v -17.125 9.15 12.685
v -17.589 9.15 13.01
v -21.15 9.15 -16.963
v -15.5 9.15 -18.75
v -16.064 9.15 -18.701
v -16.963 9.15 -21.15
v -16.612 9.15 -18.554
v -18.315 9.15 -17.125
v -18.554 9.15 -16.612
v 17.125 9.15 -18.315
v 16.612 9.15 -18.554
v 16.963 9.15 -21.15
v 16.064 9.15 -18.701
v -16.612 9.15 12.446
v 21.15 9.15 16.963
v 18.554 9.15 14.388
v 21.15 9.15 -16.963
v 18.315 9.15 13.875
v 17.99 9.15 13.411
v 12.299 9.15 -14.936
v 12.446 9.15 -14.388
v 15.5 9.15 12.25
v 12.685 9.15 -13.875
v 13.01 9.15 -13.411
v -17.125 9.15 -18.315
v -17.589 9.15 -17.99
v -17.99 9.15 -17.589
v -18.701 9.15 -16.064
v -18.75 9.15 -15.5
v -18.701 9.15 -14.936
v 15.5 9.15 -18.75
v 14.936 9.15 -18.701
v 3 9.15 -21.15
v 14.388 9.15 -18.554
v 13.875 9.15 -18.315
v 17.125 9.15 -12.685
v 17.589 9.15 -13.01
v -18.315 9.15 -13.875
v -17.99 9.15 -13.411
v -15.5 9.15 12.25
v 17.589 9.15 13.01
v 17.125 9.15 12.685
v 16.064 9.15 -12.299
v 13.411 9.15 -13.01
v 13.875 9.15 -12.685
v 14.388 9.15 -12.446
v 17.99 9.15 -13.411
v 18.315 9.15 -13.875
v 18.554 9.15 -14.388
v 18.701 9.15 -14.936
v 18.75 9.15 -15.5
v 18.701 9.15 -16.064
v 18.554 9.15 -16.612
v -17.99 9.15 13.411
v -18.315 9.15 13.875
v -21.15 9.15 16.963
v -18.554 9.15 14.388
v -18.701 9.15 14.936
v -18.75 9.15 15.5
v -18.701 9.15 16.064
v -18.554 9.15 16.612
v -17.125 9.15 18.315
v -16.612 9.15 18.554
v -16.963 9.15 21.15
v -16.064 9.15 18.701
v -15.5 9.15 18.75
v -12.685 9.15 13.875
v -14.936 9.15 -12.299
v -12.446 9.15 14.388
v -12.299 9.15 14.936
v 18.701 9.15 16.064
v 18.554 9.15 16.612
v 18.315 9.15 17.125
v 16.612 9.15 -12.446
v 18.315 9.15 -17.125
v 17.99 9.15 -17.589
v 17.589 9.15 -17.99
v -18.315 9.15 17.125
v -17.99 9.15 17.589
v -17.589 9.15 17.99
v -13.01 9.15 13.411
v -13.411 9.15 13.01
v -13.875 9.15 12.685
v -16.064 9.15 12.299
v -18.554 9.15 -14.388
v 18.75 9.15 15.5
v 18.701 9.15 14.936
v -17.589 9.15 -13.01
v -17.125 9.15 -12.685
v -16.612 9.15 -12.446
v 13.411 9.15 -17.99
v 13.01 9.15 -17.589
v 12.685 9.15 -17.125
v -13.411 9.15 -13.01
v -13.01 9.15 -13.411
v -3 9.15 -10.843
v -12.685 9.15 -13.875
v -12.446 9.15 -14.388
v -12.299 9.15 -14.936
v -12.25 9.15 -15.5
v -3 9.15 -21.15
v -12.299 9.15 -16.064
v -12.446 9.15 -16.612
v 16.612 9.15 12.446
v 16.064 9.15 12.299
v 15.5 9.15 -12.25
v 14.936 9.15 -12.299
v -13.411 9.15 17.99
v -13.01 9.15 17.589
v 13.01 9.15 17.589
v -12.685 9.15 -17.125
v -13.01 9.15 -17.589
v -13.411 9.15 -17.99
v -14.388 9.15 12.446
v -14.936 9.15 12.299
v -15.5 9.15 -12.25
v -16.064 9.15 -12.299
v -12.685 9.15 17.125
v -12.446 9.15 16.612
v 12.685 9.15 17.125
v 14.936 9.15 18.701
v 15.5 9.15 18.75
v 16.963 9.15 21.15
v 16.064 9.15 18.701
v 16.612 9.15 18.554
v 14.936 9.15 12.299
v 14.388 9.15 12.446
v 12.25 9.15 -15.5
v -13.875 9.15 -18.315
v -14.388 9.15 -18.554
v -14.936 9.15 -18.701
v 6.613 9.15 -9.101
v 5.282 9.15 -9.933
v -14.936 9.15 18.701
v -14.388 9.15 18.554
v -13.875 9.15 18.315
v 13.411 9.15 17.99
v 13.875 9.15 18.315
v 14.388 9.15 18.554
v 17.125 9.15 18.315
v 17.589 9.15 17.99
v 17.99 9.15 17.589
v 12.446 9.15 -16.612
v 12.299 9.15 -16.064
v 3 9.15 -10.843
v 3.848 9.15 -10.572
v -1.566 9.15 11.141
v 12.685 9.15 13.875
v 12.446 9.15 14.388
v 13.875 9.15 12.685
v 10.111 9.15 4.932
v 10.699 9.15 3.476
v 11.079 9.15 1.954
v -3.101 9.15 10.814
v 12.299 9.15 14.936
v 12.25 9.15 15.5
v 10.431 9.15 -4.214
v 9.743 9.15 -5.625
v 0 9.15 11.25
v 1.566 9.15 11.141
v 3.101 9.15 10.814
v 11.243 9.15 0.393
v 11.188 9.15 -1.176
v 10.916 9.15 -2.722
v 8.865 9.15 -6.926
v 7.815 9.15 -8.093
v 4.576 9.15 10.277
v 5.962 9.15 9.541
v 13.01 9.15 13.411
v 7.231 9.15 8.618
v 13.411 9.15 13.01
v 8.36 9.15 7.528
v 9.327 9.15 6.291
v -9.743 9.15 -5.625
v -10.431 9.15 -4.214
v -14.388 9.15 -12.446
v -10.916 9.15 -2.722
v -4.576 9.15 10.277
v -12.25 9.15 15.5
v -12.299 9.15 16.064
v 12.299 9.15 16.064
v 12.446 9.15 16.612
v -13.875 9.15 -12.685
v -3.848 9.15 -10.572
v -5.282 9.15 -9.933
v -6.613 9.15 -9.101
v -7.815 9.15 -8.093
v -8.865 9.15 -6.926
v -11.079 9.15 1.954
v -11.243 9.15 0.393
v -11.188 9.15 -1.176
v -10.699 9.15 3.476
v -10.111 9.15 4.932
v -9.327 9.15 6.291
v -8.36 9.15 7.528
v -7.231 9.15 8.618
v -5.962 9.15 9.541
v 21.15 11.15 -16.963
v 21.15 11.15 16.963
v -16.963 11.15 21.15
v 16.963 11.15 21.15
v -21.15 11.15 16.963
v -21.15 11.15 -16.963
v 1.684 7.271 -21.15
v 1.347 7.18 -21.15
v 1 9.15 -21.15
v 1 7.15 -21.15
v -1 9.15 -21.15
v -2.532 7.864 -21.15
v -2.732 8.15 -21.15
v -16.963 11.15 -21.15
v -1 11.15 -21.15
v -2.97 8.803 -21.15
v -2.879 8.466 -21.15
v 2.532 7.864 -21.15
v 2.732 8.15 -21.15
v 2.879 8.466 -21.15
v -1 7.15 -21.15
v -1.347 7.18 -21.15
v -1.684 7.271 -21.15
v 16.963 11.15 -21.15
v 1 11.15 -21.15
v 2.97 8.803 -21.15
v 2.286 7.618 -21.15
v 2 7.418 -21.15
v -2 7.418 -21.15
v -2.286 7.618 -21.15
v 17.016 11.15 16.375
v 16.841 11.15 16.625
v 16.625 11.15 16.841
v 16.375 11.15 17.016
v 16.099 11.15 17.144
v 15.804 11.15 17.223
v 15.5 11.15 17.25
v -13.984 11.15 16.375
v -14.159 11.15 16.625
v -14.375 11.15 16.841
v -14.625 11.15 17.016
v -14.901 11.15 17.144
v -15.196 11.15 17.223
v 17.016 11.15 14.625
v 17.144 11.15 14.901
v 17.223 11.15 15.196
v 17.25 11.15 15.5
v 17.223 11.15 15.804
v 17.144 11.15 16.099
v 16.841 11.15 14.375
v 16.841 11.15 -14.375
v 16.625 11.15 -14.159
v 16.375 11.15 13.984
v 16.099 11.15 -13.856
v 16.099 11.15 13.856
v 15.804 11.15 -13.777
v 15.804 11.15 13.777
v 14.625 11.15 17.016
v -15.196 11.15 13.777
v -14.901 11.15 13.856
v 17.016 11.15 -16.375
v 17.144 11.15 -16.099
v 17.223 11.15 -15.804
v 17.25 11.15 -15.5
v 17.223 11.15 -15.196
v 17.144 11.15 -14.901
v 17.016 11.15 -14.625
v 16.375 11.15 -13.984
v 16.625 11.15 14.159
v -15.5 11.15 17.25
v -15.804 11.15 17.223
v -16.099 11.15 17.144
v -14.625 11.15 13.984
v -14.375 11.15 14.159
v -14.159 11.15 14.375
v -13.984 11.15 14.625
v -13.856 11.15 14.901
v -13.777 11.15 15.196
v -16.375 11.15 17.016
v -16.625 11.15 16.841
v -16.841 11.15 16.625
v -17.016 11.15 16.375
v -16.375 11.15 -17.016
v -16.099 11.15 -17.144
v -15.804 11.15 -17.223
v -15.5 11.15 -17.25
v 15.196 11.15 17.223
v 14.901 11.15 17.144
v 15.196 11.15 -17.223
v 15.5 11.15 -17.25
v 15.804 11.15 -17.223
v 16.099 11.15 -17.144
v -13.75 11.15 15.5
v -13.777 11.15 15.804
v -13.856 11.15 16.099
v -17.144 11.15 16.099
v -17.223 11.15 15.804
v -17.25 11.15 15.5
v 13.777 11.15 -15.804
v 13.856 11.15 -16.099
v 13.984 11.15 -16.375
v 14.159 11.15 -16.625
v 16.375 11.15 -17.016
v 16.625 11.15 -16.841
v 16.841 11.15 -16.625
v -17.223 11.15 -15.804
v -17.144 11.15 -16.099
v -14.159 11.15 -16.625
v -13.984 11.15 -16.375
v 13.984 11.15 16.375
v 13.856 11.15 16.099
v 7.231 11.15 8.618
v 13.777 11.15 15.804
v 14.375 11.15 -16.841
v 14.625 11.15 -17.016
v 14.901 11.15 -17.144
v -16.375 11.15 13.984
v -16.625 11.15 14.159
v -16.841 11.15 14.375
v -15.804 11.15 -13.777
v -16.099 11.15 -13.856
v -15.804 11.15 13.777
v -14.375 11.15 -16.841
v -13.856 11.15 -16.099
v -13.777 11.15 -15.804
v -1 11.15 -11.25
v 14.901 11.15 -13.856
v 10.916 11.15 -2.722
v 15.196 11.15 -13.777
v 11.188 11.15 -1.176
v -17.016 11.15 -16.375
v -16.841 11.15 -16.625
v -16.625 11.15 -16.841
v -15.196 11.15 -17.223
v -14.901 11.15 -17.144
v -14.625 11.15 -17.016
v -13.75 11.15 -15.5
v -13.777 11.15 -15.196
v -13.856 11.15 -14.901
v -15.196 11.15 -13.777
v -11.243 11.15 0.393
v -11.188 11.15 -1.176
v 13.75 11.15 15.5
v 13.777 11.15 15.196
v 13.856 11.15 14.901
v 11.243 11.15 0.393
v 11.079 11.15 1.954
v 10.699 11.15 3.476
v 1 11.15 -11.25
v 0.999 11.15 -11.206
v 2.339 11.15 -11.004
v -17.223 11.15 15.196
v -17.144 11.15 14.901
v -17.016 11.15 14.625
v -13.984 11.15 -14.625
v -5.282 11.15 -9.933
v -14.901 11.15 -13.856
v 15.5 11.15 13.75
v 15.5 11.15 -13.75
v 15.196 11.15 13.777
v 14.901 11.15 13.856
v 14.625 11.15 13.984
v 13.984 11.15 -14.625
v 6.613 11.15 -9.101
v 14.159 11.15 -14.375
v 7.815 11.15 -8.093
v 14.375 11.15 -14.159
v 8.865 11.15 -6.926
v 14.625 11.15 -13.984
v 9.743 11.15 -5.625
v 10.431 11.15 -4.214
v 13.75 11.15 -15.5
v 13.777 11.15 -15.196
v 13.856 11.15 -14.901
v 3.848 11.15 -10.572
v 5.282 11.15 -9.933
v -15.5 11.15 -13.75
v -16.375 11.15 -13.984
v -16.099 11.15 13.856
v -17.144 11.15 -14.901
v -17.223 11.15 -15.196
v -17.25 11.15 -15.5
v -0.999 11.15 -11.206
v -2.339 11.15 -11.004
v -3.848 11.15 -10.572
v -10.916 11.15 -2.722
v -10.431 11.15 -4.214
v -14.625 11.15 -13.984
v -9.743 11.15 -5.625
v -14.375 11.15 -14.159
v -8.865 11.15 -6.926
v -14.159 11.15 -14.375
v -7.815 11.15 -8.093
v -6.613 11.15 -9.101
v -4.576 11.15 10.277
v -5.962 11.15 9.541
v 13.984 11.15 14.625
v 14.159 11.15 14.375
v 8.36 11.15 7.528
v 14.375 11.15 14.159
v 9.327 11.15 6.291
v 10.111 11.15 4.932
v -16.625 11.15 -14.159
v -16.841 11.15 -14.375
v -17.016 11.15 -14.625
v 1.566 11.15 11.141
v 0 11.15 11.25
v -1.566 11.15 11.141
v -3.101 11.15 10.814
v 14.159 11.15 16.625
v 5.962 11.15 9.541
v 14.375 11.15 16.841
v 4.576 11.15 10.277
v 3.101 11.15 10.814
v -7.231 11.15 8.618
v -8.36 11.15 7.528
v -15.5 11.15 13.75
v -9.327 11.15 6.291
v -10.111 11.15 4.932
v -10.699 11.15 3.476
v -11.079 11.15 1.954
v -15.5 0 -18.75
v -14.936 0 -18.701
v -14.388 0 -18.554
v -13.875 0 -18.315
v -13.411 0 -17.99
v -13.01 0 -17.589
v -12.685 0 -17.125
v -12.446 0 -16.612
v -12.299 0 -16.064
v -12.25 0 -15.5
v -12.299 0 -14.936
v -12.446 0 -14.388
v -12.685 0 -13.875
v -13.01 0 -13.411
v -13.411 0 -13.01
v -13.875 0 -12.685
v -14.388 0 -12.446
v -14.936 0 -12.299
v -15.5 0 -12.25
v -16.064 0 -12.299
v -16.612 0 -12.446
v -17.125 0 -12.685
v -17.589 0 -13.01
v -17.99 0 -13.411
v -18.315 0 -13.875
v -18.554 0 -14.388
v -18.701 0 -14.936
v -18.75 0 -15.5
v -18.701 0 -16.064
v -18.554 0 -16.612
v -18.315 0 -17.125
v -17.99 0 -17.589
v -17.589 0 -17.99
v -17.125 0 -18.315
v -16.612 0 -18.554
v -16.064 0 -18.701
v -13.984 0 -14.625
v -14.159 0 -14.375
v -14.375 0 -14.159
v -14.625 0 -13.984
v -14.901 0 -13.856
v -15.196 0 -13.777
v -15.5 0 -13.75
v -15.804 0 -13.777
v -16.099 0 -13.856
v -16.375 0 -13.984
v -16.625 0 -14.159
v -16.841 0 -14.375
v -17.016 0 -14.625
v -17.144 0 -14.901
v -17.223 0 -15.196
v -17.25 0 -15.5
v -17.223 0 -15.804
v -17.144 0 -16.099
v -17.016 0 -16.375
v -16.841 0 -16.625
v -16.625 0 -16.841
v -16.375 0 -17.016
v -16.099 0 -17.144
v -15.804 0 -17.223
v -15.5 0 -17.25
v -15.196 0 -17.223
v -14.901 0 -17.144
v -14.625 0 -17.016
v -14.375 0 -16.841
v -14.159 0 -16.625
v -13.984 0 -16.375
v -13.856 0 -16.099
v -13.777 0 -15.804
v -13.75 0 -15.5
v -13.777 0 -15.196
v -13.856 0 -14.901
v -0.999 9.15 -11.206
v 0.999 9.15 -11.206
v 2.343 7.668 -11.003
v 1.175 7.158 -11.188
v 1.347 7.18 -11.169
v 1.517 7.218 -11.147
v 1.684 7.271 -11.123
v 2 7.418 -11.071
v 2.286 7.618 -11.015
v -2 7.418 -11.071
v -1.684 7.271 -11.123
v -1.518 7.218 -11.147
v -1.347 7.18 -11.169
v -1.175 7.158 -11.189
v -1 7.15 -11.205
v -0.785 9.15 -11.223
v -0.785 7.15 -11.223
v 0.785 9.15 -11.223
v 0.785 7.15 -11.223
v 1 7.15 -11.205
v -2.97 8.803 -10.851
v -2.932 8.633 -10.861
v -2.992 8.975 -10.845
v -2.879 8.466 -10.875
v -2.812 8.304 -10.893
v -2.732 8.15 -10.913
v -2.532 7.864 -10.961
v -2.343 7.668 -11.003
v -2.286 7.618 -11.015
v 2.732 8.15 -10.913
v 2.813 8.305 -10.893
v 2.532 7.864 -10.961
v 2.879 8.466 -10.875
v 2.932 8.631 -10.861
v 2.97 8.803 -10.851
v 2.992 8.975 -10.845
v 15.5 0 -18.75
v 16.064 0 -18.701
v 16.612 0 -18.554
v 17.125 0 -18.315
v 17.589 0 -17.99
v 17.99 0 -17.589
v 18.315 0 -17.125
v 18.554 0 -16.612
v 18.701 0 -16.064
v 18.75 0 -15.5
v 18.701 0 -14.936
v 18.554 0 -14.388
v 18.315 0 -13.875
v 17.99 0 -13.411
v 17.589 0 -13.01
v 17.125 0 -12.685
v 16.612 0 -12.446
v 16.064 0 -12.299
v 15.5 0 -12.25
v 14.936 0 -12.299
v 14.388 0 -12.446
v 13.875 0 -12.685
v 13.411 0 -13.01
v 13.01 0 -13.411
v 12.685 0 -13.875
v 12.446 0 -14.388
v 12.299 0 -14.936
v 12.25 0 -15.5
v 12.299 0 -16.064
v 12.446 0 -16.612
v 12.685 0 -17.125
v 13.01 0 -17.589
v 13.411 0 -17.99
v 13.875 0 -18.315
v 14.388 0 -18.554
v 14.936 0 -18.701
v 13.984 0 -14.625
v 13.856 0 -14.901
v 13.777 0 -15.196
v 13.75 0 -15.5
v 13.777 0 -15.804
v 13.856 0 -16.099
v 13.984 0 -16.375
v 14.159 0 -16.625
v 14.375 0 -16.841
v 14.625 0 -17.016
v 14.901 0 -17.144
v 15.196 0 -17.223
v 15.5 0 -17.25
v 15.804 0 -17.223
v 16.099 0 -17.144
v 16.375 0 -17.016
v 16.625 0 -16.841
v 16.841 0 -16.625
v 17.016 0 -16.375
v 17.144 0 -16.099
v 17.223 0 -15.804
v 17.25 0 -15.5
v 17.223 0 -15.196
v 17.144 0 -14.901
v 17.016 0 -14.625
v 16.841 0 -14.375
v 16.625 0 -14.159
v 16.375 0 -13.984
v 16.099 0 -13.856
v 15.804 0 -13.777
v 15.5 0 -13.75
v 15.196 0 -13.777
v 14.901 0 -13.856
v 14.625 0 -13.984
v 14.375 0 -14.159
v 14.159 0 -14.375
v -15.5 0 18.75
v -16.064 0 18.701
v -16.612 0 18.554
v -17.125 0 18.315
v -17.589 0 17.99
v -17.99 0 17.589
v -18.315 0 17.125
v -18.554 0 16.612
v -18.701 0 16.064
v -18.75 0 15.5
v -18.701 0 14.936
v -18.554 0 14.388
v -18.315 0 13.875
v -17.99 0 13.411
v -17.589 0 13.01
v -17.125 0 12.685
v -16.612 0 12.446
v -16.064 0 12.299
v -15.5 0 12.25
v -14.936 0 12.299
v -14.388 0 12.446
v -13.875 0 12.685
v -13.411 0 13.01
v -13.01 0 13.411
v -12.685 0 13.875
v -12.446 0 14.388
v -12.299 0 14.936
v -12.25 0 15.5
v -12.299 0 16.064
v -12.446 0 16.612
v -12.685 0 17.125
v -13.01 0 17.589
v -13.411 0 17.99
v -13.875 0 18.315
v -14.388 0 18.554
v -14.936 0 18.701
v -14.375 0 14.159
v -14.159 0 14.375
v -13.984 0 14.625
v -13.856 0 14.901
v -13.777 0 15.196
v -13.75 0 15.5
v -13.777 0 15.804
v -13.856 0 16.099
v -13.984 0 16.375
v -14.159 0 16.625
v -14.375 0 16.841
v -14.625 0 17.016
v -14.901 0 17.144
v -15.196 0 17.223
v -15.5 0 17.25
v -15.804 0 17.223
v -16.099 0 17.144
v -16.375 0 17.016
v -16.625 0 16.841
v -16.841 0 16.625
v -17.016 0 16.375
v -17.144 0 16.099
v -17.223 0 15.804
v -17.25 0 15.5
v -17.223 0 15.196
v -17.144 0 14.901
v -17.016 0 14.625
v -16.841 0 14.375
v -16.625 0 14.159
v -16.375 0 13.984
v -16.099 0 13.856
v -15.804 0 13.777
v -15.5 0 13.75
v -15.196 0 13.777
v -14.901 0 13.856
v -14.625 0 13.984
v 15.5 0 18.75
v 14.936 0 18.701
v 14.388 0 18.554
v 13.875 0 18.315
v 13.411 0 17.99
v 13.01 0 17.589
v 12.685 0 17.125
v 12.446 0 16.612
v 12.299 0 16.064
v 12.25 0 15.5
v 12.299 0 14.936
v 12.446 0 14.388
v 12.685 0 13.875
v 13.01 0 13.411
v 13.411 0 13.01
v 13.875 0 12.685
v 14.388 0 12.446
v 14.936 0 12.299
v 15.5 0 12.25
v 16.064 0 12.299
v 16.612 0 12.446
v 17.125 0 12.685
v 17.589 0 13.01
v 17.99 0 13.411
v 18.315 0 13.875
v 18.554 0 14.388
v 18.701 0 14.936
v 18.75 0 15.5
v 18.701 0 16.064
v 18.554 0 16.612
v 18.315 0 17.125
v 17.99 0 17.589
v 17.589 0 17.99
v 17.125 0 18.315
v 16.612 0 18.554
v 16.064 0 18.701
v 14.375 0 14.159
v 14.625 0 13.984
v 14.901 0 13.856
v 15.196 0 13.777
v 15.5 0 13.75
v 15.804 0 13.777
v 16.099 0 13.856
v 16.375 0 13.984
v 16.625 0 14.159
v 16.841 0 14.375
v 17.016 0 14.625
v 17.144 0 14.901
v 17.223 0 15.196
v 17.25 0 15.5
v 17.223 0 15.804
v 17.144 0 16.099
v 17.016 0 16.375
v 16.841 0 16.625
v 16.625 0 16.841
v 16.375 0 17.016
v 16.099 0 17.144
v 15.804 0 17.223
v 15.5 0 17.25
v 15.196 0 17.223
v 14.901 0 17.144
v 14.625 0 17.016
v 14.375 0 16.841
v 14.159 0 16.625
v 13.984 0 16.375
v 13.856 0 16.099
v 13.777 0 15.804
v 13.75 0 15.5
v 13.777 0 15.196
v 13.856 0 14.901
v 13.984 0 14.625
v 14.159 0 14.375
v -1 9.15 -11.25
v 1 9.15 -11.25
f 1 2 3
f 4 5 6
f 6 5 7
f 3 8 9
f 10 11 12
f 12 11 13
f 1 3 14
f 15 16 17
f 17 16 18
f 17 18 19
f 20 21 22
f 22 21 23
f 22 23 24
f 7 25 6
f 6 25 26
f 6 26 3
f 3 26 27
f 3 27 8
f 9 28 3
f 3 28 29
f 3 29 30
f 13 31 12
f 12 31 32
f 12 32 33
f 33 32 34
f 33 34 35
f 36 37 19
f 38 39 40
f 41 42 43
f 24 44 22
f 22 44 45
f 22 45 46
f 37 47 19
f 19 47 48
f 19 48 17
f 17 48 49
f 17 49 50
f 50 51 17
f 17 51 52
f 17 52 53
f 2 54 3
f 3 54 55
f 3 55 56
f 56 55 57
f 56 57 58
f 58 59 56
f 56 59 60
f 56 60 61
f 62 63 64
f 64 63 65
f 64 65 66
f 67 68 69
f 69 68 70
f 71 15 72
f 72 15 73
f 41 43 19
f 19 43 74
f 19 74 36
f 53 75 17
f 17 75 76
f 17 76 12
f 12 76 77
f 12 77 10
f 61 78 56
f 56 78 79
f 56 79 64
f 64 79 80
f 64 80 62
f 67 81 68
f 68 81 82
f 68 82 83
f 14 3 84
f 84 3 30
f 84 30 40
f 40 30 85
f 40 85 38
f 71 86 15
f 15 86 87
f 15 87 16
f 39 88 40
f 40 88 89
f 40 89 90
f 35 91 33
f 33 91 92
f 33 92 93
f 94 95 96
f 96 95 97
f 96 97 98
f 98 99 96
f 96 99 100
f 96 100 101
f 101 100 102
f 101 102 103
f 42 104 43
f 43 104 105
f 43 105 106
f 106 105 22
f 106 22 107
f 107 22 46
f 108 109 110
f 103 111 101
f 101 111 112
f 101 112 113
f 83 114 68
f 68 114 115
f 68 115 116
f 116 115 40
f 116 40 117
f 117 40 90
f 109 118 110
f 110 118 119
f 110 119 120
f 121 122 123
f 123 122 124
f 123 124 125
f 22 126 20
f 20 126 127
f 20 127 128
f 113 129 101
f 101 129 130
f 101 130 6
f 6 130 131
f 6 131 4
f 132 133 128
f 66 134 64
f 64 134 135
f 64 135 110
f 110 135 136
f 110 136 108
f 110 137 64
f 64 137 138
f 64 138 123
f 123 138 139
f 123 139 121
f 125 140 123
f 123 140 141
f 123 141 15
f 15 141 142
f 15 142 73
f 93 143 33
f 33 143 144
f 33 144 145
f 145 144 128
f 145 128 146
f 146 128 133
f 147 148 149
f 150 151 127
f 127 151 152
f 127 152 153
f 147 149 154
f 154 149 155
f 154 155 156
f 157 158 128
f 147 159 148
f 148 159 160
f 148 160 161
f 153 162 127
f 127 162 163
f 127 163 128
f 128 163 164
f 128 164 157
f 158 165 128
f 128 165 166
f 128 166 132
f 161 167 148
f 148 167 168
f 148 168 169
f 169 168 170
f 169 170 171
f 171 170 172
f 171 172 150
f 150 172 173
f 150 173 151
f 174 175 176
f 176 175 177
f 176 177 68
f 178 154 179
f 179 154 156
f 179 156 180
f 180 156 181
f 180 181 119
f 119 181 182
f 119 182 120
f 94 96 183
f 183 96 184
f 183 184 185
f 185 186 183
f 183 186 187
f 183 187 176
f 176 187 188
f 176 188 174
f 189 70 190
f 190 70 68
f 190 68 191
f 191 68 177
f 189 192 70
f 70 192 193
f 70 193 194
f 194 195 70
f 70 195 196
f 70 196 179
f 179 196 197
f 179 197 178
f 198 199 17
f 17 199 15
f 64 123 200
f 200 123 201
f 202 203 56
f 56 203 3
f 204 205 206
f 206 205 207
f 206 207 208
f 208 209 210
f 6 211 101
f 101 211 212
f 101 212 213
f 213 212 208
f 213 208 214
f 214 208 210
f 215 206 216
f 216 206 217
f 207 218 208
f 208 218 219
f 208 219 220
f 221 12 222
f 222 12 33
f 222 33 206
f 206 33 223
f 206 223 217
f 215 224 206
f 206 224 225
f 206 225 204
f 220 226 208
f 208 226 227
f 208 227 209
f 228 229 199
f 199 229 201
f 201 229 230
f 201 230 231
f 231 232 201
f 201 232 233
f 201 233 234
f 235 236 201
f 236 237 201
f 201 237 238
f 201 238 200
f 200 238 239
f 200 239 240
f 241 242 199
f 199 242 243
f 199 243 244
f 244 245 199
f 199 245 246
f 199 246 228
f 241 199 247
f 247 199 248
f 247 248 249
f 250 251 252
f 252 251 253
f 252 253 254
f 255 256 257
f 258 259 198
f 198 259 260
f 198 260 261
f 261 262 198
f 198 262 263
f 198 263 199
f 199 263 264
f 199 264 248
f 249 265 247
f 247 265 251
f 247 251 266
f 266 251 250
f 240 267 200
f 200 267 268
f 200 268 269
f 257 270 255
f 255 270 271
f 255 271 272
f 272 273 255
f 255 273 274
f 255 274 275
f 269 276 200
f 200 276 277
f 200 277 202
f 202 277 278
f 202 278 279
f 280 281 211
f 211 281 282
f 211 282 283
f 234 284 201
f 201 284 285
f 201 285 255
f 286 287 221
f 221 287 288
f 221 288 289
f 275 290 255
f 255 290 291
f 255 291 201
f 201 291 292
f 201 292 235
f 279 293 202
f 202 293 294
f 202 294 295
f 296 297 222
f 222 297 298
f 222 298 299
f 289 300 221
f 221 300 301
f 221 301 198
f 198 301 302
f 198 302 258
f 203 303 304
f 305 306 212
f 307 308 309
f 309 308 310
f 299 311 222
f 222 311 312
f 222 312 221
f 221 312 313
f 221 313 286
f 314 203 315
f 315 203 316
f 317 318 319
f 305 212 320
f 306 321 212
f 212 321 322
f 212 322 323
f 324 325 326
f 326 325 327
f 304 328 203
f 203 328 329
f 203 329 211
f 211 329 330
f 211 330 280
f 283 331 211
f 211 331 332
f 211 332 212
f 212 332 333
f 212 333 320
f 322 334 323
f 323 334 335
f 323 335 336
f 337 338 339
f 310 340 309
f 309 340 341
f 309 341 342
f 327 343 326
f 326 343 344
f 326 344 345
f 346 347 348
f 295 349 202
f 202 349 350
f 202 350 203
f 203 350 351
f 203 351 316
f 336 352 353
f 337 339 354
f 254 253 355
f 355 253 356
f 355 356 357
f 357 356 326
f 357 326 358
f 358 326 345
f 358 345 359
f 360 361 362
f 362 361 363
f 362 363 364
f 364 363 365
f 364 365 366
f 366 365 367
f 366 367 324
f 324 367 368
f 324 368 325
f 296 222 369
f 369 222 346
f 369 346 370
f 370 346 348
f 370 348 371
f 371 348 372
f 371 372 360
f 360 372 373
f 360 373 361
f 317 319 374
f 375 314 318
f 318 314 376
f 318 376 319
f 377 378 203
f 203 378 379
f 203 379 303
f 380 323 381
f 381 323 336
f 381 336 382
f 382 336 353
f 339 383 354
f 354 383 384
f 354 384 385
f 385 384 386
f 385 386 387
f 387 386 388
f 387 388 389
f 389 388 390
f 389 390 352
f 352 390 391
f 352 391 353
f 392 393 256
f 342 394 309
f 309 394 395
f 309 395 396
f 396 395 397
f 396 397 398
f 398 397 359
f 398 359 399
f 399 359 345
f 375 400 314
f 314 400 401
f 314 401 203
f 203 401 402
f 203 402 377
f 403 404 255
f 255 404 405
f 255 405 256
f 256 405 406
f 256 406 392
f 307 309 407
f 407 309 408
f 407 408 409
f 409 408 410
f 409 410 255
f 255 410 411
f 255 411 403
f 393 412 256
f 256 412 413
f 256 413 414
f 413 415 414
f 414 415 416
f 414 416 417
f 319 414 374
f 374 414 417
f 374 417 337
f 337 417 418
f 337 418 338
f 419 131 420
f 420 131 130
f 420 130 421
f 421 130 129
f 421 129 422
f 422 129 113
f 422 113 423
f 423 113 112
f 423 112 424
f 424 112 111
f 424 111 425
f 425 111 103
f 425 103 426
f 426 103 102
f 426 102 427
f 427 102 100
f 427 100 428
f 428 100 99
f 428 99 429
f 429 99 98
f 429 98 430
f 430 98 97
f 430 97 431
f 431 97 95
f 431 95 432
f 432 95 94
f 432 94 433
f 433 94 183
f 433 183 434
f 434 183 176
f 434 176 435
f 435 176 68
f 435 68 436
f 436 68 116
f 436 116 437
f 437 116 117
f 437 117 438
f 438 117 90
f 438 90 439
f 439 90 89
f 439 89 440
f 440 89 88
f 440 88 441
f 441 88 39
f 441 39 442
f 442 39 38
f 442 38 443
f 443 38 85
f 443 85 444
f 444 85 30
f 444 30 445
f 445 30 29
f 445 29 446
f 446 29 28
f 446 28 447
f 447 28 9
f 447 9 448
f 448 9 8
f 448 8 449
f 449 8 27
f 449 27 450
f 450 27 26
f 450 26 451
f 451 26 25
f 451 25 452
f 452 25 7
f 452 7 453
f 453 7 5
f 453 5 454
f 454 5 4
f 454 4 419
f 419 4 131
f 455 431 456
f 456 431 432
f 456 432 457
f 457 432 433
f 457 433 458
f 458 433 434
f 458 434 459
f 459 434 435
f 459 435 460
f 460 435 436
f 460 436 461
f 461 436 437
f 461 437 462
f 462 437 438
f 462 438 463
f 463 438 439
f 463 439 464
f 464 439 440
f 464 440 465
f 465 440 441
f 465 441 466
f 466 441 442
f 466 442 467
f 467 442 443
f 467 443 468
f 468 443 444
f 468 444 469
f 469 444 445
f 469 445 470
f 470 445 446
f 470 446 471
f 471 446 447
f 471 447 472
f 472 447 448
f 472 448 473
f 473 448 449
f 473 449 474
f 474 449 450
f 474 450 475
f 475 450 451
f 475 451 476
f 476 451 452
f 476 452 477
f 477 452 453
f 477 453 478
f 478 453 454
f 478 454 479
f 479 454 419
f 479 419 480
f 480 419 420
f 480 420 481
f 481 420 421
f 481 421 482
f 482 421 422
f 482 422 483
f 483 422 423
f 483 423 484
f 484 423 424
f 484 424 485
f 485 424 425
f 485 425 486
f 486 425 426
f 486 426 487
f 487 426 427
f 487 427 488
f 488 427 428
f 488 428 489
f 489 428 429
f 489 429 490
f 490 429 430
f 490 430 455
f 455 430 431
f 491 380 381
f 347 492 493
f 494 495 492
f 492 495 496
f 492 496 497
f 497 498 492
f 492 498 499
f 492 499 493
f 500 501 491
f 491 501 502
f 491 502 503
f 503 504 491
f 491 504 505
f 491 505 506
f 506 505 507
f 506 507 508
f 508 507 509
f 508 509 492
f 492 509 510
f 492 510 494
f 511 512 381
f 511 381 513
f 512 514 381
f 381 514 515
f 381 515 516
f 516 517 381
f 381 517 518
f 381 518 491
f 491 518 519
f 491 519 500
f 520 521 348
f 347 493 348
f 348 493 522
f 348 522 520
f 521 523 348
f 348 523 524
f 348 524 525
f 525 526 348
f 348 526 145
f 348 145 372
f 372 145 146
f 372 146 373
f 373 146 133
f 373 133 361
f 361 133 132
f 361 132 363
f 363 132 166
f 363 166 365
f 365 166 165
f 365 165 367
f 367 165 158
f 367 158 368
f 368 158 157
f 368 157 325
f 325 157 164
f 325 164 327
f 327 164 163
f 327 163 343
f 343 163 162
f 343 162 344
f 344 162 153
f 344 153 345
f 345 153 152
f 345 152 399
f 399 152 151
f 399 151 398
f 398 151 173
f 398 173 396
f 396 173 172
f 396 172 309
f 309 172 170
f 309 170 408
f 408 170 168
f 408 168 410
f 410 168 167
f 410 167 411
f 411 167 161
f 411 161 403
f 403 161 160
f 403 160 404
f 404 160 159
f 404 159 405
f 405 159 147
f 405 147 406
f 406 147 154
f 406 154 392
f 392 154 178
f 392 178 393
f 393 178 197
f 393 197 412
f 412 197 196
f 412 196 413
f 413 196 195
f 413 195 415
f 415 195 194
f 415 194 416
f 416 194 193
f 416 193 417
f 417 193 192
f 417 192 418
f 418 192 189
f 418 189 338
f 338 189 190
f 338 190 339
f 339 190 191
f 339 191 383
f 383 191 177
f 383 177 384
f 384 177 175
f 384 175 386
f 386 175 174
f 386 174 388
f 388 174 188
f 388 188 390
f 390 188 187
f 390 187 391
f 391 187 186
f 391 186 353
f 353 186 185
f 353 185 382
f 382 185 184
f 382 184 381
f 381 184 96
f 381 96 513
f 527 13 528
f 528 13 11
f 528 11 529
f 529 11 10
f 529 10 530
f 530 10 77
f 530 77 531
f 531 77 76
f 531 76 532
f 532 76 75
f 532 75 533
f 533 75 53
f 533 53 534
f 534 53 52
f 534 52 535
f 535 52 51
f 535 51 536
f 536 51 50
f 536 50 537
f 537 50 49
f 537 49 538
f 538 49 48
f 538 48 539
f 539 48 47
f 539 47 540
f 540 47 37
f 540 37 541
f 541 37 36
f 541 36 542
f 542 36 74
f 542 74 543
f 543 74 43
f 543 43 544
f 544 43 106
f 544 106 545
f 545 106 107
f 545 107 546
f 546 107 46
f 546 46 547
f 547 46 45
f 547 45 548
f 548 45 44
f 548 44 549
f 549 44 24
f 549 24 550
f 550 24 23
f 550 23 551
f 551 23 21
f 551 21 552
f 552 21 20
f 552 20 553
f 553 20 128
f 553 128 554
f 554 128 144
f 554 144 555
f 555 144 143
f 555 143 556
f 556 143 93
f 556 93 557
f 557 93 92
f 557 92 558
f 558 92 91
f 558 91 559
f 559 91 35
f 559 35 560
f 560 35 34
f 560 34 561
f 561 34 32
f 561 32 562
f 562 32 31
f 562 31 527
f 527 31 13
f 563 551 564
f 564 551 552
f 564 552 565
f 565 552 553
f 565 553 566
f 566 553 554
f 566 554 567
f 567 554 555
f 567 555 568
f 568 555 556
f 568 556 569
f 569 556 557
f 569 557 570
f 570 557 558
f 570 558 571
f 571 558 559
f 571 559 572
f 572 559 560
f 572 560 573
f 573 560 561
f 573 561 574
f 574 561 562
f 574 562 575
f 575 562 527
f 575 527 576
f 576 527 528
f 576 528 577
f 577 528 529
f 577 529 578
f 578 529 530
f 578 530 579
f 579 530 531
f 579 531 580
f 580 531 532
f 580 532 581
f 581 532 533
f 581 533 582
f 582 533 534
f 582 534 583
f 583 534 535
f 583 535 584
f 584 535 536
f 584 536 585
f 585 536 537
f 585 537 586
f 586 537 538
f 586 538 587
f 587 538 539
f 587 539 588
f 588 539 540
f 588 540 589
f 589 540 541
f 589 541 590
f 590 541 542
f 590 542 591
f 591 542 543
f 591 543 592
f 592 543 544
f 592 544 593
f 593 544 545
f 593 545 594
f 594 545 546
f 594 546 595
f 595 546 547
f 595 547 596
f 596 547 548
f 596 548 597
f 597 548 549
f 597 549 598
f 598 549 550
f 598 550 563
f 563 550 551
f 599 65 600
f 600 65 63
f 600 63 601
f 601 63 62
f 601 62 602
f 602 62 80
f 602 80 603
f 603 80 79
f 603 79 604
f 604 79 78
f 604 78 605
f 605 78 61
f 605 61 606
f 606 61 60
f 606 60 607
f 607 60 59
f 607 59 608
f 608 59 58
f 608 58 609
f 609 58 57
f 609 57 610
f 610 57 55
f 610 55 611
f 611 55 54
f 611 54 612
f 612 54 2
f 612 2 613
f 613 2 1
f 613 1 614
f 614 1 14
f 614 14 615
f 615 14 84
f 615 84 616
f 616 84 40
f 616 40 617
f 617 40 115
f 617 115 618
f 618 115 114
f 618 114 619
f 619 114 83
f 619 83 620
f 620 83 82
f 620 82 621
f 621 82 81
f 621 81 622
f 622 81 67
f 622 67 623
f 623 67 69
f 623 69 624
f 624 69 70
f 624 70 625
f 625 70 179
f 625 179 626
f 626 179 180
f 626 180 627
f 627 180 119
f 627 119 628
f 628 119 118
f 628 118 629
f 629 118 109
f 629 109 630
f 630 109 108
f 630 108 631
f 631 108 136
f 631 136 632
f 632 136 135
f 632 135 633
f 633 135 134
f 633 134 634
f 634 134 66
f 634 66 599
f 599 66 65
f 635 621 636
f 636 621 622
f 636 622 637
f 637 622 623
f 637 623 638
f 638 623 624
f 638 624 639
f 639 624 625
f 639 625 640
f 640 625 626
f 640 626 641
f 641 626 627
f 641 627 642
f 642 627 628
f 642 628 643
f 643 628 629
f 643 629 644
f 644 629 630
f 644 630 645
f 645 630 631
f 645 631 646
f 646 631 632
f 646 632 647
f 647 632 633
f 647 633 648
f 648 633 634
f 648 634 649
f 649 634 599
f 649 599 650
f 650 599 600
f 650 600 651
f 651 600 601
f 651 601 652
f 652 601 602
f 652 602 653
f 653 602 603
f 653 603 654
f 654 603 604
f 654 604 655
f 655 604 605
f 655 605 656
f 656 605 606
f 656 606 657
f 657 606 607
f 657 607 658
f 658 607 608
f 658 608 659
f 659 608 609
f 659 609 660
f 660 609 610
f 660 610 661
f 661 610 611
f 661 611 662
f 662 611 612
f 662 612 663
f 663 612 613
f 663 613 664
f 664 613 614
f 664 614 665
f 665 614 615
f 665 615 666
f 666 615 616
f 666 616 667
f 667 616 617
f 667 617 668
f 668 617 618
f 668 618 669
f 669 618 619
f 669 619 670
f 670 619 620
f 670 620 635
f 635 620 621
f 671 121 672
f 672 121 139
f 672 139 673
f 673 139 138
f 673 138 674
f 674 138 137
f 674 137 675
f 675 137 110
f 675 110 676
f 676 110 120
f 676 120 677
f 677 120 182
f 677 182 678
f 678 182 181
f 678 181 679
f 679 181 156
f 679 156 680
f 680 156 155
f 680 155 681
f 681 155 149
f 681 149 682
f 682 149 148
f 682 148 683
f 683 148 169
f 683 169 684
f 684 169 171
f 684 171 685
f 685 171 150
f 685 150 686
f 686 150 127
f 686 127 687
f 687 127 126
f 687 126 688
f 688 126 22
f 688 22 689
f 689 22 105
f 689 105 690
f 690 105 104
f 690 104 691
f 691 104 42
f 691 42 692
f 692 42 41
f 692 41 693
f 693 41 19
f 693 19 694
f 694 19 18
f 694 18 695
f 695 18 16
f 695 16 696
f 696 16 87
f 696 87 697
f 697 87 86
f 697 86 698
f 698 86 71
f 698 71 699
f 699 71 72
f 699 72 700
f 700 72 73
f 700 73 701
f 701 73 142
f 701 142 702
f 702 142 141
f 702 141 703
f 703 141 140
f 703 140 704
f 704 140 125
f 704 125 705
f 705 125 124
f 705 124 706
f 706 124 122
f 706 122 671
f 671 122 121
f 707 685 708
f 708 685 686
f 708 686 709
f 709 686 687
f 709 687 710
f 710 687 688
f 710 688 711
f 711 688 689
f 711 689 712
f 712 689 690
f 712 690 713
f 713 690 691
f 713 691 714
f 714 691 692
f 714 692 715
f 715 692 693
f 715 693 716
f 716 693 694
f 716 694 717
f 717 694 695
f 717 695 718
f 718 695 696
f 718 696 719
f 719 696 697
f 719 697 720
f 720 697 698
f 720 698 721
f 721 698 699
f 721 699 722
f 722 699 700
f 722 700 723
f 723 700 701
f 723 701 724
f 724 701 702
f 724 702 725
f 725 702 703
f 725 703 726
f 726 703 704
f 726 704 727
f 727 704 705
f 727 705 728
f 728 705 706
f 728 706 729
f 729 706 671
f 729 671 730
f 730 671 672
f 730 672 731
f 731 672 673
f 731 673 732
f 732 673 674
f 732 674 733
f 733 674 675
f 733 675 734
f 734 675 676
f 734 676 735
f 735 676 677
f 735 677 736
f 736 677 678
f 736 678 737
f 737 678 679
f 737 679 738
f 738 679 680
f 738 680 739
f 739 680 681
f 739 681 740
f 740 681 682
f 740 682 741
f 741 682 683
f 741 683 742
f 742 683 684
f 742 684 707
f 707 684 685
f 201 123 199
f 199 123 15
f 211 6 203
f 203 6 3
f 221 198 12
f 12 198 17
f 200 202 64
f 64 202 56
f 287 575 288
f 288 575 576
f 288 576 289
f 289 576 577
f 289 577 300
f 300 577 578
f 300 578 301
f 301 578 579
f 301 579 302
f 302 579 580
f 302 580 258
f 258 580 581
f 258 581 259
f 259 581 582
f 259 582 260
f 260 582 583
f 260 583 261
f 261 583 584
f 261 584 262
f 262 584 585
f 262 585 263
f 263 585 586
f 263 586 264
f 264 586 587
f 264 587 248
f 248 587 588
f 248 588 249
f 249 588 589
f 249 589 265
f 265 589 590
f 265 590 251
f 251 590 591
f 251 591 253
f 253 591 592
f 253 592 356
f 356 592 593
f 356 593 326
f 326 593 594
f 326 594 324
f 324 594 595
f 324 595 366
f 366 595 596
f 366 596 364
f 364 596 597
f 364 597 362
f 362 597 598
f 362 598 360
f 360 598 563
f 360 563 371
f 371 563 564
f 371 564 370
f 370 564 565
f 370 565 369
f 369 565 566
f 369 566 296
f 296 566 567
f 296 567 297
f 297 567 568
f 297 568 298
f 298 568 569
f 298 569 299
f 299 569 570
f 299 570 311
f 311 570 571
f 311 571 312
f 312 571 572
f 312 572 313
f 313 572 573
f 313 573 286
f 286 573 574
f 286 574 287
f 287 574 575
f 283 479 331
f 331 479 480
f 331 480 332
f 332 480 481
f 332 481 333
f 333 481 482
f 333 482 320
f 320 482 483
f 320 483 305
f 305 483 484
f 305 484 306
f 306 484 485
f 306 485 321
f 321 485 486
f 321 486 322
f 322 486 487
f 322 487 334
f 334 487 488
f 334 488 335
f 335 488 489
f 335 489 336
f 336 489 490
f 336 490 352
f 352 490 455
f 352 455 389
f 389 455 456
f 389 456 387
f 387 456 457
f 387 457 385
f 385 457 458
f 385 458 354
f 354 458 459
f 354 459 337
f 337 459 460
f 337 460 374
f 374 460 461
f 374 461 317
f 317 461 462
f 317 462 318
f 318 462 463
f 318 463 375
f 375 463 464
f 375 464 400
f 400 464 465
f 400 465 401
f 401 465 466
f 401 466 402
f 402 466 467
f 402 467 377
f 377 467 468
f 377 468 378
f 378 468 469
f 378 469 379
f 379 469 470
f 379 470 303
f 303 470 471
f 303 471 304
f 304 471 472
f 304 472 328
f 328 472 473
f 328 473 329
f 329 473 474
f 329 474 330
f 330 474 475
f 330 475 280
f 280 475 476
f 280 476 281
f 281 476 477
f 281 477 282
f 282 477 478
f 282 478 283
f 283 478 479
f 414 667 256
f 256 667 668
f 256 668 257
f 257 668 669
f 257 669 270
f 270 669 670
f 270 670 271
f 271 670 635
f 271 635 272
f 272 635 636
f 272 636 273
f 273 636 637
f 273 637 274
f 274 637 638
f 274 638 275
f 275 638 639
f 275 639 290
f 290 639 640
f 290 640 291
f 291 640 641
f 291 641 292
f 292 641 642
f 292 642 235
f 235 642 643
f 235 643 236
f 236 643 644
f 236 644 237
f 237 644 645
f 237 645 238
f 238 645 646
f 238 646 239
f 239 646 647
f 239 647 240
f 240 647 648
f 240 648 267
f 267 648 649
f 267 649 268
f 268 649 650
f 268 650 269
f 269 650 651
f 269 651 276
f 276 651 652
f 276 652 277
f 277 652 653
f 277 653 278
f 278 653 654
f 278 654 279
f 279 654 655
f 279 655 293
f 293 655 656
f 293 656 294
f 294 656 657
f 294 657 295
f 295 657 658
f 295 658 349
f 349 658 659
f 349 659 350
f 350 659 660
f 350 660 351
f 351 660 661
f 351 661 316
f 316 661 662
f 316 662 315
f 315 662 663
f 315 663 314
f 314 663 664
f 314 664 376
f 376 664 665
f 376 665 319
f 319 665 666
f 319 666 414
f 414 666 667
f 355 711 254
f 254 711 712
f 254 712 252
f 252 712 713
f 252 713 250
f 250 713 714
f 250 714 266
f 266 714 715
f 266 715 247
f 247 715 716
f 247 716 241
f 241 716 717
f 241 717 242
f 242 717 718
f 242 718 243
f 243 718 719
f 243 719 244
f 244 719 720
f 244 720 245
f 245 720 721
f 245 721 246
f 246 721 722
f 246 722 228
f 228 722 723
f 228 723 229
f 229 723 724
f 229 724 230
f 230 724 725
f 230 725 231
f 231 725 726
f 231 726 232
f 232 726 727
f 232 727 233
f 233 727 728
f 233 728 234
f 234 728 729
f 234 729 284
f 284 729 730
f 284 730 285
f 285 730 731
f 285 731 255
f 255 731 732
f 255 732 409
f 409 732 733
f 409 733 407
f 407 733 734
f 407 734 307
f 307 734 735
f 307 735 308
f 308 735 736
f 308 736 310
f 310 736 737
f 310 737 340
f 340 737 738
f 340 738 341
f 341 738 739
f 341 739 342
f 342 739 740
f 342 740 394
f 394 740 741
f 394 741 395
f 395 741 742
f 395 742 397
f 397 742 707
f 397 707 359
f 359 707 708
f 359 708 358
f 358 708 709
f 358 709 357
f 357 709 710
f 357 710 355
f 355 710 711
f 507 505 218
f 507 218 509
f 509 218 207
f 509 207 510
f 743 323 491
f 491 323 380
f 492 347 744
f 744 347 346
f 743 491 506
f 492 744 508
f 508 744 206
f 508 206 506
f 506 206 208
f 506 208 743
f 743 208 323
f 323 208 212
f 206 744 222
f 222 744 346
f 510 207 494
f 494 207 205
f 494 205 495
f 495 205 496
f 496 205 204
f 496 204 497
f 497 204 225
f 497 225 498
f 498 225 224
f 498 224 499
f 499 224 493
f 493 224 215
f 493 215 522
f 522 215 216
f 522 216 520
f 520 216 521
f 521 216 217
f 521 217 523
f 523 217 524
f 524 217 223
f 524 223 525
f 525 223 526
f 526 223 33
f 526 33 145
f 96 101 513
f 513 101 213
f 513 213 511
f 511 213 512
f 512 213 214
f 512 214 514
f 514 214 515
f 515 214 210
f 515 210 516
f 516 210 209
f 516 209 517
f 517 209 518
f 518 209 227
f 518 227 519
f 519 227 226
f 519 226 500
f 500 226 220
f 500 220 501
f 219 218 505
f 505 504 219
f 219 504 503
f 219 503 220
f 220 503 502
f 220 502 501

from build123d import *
from build123d.topology import SkipClean

# Parameters (mm, degrees)
SKETCH1_R               = 3.25
BOSS_EXTRUDE1_DEPTH     = 11.15
SKETCH2_W               = 42.3
SKETCH2_H               = 42.3
SKETCH2_R               = 11.25
BOSS_EXTRUDE2_DEPTH     = 2
CUT_EXTRUDE1_DEPTH      = 32.921270338
SKETCH4_R               = 1.75
CUT_EXTRUDE2_DEPTH      = 32.921270338
MIRROR6_COPY_1_SKETCH_R = 1.75
MIRROR6_COPY_1_DEPTH    = 32.921270338
BOSS_EXTRUDE3_DEPTH     = 2
CUT_EXTRUDE3_DEPTH      = 2
FILLET1_R               = 2


with BuildPart() as part:
    # Sketch1 → Boss-Extrude1 (new body)
    with BuildSketch(Plane(origin=(0, 0, 0), x_dir=(1, 0, 0), z_dir=(0, 1, 0))):
        with Locations(Location((-15.5, 15.5, 0), (0, 0, 270))):
            Circle(SKETCH1_R)
    extrude(amount=BOSS_EXTRUDE1_DEPTH)


with BuildPart() as body_2:
    # Mirror2: mirrored copy
    add(part.part.mirror(Plane(origin=(0, 0, 0), x_dir=(0, 0, 1), z_dir=(1, 0, 0))))


with BuildPart() as body_3:
    # Mirror3: mirrored copy
    add(part.part.mirror(Plane.XY))


with BuildPart() as body_4:
    # Mirror3 2: mirrored copy
    add(body_2.part.mirror(Plane.XY))


with BuildPart() as part_1:
    add(part.part)

    add(body_2.part)  # Boss-Extrude2 merges body 2

    add(body_3.part)  # Boss-Extrude2 merges body 3

    add(body_4.part)  # Boss-Extrude2 merges body 4
    # Sketch2 → Boss-Extrude2 (add)
    with BuildSketch(Plane(origin=(0, 11.15, 0), x_dir=(1, 0, 0), z_dir=(0, 1, 0))):
        Rectangle(SKETCH2_W, SKETCH2_H)
        with Locations(Location((0, 0, 0), (0, 0, 270))):
            Circle(SKETCH2_R, mode=Mode.SUBTRACT)
    extrude(amount=-BOSS_EXTRUDE2_DEPTH)

    # Sketch3 → Cut-Extrude1 (cut, through all)
    with BuildSketch(Plane(origin=(0, 11.15, 0), x_dir=(1, 0, 0), z_dir=(0, 1, 0))):
        Polygon((-16.963055506, 21.15), (-21.15, 16.963055506), (-21.15, 21.15), align=None)
        Polygon((16.963055506, -21.15), (21.15, -16.963055506), (21.15, -21.15), align=None)
    cut_extrude1 = extrude(amount=-CUT_EXTRUDE1_DEPTH, mode=Mode.SUBTRACT)

    # Mirror4: Cut-Extrude1 across plane
    add(cut_extrude1.mirror(Plane.XY), mode=Mode.SUBTRACT)

    # Sketch4 → Cut-Extrude2 (cut, through all)
    with BuildSketch(Plane.XZ):
        with Locations(Location((15.5, -15.5, 0), (0, 0, 270))):
            Circle(SKETCH4_R)
    cut_extrude2 = extrude(amount=-CUT_EXTRUDE2_DEPTH, mode=Mode.SUBTRACT)

    # Mirror5: Cut-Extrude2 across plane
    add(cut_extrude2.mirror(Plane(origin=(0, 0, 0), x_dir=(0, 0, 1), z_dir=(1, 0, 0))), mode=Mode.SUBTRACT)

    # Mirror6: Cut-Extrude2 across plane
    add(cut_extrude2.mirror(Plane.XY), mode=Mode.SUBTRACT)

    # Mirror6 copy 1 sketch → Mirror6 copy 1 (cut, through all)
    with BuildSketch(Plane(origin=(0, 0, 0), x_dir=(-1, 0, 0), z_dir=(0, -1, 0))):
        with Locations(Location((15.5, -15.5, 0), (0, 0, 270))):
            Circle(MIRROR6_COPY_1_SKETCH_R)
    extrude(amount=-MIRROR6_COPY_1_DEPTH, mode=Mode.SUBTRACT)

    # Sketch6 → Boss-Extrude3 (add)
    with SkipClean():  # the faces are left unmerged after this step: merging them gives an invalid solid
        with BuildSketch(Plane.XZ.offset(-9.15)):
            with BuildLine():
                Line((-3, -21.15), (-3, -10.842624221))
                ThreePointArc((-3, -10.842624221), (0, -11.25), (3, -10.842624221))
                Line((3, -10.842624221), (3, -21.15))
                Line((3, -21.15), (-3, -21.15))
            make_face()
        extrude(amount=BOSS_EXTRUDE3_DEPTH)

    # Sketch7 → Cut-Extrude3 (cut)
    with SkipClean():  # the faces are left unmerged after this step: merging them gives an invalid solid
        with BuildSketch(Plane(origin=(0, 11.15, 0), x_dir=(1, 0, 0), z_dir=(0, 1, 0))):
            with BuildLine():
                Line((-1, 11.25), (-1, 21.15))
                ThreePointArc((-1, 21.15), (0, 22.15), (1, 21.15))
                Line((1, 21.15), (1, 11.25))
                ThreePointArc((1, 11.25), (0, 10.25), (-1, 11.25))
            make_face()
        extrude(amount=-CUT_EXTRUDE3_DEPTH, mode=Mode.SUBTRACT)

    # Fillet1
    fillet1_edges = [part_1.edges().sort_by_distance(p)[0] for p in [
        (3, 7.15, -15.996312111),
        (-3, 7.15, -15.996312111),
    ]]
    fillet(fillet1_edges, radius=FILLET1_R - 0.0001)  # a hair under: the kernel refuses the full size


solid = part_1.part
